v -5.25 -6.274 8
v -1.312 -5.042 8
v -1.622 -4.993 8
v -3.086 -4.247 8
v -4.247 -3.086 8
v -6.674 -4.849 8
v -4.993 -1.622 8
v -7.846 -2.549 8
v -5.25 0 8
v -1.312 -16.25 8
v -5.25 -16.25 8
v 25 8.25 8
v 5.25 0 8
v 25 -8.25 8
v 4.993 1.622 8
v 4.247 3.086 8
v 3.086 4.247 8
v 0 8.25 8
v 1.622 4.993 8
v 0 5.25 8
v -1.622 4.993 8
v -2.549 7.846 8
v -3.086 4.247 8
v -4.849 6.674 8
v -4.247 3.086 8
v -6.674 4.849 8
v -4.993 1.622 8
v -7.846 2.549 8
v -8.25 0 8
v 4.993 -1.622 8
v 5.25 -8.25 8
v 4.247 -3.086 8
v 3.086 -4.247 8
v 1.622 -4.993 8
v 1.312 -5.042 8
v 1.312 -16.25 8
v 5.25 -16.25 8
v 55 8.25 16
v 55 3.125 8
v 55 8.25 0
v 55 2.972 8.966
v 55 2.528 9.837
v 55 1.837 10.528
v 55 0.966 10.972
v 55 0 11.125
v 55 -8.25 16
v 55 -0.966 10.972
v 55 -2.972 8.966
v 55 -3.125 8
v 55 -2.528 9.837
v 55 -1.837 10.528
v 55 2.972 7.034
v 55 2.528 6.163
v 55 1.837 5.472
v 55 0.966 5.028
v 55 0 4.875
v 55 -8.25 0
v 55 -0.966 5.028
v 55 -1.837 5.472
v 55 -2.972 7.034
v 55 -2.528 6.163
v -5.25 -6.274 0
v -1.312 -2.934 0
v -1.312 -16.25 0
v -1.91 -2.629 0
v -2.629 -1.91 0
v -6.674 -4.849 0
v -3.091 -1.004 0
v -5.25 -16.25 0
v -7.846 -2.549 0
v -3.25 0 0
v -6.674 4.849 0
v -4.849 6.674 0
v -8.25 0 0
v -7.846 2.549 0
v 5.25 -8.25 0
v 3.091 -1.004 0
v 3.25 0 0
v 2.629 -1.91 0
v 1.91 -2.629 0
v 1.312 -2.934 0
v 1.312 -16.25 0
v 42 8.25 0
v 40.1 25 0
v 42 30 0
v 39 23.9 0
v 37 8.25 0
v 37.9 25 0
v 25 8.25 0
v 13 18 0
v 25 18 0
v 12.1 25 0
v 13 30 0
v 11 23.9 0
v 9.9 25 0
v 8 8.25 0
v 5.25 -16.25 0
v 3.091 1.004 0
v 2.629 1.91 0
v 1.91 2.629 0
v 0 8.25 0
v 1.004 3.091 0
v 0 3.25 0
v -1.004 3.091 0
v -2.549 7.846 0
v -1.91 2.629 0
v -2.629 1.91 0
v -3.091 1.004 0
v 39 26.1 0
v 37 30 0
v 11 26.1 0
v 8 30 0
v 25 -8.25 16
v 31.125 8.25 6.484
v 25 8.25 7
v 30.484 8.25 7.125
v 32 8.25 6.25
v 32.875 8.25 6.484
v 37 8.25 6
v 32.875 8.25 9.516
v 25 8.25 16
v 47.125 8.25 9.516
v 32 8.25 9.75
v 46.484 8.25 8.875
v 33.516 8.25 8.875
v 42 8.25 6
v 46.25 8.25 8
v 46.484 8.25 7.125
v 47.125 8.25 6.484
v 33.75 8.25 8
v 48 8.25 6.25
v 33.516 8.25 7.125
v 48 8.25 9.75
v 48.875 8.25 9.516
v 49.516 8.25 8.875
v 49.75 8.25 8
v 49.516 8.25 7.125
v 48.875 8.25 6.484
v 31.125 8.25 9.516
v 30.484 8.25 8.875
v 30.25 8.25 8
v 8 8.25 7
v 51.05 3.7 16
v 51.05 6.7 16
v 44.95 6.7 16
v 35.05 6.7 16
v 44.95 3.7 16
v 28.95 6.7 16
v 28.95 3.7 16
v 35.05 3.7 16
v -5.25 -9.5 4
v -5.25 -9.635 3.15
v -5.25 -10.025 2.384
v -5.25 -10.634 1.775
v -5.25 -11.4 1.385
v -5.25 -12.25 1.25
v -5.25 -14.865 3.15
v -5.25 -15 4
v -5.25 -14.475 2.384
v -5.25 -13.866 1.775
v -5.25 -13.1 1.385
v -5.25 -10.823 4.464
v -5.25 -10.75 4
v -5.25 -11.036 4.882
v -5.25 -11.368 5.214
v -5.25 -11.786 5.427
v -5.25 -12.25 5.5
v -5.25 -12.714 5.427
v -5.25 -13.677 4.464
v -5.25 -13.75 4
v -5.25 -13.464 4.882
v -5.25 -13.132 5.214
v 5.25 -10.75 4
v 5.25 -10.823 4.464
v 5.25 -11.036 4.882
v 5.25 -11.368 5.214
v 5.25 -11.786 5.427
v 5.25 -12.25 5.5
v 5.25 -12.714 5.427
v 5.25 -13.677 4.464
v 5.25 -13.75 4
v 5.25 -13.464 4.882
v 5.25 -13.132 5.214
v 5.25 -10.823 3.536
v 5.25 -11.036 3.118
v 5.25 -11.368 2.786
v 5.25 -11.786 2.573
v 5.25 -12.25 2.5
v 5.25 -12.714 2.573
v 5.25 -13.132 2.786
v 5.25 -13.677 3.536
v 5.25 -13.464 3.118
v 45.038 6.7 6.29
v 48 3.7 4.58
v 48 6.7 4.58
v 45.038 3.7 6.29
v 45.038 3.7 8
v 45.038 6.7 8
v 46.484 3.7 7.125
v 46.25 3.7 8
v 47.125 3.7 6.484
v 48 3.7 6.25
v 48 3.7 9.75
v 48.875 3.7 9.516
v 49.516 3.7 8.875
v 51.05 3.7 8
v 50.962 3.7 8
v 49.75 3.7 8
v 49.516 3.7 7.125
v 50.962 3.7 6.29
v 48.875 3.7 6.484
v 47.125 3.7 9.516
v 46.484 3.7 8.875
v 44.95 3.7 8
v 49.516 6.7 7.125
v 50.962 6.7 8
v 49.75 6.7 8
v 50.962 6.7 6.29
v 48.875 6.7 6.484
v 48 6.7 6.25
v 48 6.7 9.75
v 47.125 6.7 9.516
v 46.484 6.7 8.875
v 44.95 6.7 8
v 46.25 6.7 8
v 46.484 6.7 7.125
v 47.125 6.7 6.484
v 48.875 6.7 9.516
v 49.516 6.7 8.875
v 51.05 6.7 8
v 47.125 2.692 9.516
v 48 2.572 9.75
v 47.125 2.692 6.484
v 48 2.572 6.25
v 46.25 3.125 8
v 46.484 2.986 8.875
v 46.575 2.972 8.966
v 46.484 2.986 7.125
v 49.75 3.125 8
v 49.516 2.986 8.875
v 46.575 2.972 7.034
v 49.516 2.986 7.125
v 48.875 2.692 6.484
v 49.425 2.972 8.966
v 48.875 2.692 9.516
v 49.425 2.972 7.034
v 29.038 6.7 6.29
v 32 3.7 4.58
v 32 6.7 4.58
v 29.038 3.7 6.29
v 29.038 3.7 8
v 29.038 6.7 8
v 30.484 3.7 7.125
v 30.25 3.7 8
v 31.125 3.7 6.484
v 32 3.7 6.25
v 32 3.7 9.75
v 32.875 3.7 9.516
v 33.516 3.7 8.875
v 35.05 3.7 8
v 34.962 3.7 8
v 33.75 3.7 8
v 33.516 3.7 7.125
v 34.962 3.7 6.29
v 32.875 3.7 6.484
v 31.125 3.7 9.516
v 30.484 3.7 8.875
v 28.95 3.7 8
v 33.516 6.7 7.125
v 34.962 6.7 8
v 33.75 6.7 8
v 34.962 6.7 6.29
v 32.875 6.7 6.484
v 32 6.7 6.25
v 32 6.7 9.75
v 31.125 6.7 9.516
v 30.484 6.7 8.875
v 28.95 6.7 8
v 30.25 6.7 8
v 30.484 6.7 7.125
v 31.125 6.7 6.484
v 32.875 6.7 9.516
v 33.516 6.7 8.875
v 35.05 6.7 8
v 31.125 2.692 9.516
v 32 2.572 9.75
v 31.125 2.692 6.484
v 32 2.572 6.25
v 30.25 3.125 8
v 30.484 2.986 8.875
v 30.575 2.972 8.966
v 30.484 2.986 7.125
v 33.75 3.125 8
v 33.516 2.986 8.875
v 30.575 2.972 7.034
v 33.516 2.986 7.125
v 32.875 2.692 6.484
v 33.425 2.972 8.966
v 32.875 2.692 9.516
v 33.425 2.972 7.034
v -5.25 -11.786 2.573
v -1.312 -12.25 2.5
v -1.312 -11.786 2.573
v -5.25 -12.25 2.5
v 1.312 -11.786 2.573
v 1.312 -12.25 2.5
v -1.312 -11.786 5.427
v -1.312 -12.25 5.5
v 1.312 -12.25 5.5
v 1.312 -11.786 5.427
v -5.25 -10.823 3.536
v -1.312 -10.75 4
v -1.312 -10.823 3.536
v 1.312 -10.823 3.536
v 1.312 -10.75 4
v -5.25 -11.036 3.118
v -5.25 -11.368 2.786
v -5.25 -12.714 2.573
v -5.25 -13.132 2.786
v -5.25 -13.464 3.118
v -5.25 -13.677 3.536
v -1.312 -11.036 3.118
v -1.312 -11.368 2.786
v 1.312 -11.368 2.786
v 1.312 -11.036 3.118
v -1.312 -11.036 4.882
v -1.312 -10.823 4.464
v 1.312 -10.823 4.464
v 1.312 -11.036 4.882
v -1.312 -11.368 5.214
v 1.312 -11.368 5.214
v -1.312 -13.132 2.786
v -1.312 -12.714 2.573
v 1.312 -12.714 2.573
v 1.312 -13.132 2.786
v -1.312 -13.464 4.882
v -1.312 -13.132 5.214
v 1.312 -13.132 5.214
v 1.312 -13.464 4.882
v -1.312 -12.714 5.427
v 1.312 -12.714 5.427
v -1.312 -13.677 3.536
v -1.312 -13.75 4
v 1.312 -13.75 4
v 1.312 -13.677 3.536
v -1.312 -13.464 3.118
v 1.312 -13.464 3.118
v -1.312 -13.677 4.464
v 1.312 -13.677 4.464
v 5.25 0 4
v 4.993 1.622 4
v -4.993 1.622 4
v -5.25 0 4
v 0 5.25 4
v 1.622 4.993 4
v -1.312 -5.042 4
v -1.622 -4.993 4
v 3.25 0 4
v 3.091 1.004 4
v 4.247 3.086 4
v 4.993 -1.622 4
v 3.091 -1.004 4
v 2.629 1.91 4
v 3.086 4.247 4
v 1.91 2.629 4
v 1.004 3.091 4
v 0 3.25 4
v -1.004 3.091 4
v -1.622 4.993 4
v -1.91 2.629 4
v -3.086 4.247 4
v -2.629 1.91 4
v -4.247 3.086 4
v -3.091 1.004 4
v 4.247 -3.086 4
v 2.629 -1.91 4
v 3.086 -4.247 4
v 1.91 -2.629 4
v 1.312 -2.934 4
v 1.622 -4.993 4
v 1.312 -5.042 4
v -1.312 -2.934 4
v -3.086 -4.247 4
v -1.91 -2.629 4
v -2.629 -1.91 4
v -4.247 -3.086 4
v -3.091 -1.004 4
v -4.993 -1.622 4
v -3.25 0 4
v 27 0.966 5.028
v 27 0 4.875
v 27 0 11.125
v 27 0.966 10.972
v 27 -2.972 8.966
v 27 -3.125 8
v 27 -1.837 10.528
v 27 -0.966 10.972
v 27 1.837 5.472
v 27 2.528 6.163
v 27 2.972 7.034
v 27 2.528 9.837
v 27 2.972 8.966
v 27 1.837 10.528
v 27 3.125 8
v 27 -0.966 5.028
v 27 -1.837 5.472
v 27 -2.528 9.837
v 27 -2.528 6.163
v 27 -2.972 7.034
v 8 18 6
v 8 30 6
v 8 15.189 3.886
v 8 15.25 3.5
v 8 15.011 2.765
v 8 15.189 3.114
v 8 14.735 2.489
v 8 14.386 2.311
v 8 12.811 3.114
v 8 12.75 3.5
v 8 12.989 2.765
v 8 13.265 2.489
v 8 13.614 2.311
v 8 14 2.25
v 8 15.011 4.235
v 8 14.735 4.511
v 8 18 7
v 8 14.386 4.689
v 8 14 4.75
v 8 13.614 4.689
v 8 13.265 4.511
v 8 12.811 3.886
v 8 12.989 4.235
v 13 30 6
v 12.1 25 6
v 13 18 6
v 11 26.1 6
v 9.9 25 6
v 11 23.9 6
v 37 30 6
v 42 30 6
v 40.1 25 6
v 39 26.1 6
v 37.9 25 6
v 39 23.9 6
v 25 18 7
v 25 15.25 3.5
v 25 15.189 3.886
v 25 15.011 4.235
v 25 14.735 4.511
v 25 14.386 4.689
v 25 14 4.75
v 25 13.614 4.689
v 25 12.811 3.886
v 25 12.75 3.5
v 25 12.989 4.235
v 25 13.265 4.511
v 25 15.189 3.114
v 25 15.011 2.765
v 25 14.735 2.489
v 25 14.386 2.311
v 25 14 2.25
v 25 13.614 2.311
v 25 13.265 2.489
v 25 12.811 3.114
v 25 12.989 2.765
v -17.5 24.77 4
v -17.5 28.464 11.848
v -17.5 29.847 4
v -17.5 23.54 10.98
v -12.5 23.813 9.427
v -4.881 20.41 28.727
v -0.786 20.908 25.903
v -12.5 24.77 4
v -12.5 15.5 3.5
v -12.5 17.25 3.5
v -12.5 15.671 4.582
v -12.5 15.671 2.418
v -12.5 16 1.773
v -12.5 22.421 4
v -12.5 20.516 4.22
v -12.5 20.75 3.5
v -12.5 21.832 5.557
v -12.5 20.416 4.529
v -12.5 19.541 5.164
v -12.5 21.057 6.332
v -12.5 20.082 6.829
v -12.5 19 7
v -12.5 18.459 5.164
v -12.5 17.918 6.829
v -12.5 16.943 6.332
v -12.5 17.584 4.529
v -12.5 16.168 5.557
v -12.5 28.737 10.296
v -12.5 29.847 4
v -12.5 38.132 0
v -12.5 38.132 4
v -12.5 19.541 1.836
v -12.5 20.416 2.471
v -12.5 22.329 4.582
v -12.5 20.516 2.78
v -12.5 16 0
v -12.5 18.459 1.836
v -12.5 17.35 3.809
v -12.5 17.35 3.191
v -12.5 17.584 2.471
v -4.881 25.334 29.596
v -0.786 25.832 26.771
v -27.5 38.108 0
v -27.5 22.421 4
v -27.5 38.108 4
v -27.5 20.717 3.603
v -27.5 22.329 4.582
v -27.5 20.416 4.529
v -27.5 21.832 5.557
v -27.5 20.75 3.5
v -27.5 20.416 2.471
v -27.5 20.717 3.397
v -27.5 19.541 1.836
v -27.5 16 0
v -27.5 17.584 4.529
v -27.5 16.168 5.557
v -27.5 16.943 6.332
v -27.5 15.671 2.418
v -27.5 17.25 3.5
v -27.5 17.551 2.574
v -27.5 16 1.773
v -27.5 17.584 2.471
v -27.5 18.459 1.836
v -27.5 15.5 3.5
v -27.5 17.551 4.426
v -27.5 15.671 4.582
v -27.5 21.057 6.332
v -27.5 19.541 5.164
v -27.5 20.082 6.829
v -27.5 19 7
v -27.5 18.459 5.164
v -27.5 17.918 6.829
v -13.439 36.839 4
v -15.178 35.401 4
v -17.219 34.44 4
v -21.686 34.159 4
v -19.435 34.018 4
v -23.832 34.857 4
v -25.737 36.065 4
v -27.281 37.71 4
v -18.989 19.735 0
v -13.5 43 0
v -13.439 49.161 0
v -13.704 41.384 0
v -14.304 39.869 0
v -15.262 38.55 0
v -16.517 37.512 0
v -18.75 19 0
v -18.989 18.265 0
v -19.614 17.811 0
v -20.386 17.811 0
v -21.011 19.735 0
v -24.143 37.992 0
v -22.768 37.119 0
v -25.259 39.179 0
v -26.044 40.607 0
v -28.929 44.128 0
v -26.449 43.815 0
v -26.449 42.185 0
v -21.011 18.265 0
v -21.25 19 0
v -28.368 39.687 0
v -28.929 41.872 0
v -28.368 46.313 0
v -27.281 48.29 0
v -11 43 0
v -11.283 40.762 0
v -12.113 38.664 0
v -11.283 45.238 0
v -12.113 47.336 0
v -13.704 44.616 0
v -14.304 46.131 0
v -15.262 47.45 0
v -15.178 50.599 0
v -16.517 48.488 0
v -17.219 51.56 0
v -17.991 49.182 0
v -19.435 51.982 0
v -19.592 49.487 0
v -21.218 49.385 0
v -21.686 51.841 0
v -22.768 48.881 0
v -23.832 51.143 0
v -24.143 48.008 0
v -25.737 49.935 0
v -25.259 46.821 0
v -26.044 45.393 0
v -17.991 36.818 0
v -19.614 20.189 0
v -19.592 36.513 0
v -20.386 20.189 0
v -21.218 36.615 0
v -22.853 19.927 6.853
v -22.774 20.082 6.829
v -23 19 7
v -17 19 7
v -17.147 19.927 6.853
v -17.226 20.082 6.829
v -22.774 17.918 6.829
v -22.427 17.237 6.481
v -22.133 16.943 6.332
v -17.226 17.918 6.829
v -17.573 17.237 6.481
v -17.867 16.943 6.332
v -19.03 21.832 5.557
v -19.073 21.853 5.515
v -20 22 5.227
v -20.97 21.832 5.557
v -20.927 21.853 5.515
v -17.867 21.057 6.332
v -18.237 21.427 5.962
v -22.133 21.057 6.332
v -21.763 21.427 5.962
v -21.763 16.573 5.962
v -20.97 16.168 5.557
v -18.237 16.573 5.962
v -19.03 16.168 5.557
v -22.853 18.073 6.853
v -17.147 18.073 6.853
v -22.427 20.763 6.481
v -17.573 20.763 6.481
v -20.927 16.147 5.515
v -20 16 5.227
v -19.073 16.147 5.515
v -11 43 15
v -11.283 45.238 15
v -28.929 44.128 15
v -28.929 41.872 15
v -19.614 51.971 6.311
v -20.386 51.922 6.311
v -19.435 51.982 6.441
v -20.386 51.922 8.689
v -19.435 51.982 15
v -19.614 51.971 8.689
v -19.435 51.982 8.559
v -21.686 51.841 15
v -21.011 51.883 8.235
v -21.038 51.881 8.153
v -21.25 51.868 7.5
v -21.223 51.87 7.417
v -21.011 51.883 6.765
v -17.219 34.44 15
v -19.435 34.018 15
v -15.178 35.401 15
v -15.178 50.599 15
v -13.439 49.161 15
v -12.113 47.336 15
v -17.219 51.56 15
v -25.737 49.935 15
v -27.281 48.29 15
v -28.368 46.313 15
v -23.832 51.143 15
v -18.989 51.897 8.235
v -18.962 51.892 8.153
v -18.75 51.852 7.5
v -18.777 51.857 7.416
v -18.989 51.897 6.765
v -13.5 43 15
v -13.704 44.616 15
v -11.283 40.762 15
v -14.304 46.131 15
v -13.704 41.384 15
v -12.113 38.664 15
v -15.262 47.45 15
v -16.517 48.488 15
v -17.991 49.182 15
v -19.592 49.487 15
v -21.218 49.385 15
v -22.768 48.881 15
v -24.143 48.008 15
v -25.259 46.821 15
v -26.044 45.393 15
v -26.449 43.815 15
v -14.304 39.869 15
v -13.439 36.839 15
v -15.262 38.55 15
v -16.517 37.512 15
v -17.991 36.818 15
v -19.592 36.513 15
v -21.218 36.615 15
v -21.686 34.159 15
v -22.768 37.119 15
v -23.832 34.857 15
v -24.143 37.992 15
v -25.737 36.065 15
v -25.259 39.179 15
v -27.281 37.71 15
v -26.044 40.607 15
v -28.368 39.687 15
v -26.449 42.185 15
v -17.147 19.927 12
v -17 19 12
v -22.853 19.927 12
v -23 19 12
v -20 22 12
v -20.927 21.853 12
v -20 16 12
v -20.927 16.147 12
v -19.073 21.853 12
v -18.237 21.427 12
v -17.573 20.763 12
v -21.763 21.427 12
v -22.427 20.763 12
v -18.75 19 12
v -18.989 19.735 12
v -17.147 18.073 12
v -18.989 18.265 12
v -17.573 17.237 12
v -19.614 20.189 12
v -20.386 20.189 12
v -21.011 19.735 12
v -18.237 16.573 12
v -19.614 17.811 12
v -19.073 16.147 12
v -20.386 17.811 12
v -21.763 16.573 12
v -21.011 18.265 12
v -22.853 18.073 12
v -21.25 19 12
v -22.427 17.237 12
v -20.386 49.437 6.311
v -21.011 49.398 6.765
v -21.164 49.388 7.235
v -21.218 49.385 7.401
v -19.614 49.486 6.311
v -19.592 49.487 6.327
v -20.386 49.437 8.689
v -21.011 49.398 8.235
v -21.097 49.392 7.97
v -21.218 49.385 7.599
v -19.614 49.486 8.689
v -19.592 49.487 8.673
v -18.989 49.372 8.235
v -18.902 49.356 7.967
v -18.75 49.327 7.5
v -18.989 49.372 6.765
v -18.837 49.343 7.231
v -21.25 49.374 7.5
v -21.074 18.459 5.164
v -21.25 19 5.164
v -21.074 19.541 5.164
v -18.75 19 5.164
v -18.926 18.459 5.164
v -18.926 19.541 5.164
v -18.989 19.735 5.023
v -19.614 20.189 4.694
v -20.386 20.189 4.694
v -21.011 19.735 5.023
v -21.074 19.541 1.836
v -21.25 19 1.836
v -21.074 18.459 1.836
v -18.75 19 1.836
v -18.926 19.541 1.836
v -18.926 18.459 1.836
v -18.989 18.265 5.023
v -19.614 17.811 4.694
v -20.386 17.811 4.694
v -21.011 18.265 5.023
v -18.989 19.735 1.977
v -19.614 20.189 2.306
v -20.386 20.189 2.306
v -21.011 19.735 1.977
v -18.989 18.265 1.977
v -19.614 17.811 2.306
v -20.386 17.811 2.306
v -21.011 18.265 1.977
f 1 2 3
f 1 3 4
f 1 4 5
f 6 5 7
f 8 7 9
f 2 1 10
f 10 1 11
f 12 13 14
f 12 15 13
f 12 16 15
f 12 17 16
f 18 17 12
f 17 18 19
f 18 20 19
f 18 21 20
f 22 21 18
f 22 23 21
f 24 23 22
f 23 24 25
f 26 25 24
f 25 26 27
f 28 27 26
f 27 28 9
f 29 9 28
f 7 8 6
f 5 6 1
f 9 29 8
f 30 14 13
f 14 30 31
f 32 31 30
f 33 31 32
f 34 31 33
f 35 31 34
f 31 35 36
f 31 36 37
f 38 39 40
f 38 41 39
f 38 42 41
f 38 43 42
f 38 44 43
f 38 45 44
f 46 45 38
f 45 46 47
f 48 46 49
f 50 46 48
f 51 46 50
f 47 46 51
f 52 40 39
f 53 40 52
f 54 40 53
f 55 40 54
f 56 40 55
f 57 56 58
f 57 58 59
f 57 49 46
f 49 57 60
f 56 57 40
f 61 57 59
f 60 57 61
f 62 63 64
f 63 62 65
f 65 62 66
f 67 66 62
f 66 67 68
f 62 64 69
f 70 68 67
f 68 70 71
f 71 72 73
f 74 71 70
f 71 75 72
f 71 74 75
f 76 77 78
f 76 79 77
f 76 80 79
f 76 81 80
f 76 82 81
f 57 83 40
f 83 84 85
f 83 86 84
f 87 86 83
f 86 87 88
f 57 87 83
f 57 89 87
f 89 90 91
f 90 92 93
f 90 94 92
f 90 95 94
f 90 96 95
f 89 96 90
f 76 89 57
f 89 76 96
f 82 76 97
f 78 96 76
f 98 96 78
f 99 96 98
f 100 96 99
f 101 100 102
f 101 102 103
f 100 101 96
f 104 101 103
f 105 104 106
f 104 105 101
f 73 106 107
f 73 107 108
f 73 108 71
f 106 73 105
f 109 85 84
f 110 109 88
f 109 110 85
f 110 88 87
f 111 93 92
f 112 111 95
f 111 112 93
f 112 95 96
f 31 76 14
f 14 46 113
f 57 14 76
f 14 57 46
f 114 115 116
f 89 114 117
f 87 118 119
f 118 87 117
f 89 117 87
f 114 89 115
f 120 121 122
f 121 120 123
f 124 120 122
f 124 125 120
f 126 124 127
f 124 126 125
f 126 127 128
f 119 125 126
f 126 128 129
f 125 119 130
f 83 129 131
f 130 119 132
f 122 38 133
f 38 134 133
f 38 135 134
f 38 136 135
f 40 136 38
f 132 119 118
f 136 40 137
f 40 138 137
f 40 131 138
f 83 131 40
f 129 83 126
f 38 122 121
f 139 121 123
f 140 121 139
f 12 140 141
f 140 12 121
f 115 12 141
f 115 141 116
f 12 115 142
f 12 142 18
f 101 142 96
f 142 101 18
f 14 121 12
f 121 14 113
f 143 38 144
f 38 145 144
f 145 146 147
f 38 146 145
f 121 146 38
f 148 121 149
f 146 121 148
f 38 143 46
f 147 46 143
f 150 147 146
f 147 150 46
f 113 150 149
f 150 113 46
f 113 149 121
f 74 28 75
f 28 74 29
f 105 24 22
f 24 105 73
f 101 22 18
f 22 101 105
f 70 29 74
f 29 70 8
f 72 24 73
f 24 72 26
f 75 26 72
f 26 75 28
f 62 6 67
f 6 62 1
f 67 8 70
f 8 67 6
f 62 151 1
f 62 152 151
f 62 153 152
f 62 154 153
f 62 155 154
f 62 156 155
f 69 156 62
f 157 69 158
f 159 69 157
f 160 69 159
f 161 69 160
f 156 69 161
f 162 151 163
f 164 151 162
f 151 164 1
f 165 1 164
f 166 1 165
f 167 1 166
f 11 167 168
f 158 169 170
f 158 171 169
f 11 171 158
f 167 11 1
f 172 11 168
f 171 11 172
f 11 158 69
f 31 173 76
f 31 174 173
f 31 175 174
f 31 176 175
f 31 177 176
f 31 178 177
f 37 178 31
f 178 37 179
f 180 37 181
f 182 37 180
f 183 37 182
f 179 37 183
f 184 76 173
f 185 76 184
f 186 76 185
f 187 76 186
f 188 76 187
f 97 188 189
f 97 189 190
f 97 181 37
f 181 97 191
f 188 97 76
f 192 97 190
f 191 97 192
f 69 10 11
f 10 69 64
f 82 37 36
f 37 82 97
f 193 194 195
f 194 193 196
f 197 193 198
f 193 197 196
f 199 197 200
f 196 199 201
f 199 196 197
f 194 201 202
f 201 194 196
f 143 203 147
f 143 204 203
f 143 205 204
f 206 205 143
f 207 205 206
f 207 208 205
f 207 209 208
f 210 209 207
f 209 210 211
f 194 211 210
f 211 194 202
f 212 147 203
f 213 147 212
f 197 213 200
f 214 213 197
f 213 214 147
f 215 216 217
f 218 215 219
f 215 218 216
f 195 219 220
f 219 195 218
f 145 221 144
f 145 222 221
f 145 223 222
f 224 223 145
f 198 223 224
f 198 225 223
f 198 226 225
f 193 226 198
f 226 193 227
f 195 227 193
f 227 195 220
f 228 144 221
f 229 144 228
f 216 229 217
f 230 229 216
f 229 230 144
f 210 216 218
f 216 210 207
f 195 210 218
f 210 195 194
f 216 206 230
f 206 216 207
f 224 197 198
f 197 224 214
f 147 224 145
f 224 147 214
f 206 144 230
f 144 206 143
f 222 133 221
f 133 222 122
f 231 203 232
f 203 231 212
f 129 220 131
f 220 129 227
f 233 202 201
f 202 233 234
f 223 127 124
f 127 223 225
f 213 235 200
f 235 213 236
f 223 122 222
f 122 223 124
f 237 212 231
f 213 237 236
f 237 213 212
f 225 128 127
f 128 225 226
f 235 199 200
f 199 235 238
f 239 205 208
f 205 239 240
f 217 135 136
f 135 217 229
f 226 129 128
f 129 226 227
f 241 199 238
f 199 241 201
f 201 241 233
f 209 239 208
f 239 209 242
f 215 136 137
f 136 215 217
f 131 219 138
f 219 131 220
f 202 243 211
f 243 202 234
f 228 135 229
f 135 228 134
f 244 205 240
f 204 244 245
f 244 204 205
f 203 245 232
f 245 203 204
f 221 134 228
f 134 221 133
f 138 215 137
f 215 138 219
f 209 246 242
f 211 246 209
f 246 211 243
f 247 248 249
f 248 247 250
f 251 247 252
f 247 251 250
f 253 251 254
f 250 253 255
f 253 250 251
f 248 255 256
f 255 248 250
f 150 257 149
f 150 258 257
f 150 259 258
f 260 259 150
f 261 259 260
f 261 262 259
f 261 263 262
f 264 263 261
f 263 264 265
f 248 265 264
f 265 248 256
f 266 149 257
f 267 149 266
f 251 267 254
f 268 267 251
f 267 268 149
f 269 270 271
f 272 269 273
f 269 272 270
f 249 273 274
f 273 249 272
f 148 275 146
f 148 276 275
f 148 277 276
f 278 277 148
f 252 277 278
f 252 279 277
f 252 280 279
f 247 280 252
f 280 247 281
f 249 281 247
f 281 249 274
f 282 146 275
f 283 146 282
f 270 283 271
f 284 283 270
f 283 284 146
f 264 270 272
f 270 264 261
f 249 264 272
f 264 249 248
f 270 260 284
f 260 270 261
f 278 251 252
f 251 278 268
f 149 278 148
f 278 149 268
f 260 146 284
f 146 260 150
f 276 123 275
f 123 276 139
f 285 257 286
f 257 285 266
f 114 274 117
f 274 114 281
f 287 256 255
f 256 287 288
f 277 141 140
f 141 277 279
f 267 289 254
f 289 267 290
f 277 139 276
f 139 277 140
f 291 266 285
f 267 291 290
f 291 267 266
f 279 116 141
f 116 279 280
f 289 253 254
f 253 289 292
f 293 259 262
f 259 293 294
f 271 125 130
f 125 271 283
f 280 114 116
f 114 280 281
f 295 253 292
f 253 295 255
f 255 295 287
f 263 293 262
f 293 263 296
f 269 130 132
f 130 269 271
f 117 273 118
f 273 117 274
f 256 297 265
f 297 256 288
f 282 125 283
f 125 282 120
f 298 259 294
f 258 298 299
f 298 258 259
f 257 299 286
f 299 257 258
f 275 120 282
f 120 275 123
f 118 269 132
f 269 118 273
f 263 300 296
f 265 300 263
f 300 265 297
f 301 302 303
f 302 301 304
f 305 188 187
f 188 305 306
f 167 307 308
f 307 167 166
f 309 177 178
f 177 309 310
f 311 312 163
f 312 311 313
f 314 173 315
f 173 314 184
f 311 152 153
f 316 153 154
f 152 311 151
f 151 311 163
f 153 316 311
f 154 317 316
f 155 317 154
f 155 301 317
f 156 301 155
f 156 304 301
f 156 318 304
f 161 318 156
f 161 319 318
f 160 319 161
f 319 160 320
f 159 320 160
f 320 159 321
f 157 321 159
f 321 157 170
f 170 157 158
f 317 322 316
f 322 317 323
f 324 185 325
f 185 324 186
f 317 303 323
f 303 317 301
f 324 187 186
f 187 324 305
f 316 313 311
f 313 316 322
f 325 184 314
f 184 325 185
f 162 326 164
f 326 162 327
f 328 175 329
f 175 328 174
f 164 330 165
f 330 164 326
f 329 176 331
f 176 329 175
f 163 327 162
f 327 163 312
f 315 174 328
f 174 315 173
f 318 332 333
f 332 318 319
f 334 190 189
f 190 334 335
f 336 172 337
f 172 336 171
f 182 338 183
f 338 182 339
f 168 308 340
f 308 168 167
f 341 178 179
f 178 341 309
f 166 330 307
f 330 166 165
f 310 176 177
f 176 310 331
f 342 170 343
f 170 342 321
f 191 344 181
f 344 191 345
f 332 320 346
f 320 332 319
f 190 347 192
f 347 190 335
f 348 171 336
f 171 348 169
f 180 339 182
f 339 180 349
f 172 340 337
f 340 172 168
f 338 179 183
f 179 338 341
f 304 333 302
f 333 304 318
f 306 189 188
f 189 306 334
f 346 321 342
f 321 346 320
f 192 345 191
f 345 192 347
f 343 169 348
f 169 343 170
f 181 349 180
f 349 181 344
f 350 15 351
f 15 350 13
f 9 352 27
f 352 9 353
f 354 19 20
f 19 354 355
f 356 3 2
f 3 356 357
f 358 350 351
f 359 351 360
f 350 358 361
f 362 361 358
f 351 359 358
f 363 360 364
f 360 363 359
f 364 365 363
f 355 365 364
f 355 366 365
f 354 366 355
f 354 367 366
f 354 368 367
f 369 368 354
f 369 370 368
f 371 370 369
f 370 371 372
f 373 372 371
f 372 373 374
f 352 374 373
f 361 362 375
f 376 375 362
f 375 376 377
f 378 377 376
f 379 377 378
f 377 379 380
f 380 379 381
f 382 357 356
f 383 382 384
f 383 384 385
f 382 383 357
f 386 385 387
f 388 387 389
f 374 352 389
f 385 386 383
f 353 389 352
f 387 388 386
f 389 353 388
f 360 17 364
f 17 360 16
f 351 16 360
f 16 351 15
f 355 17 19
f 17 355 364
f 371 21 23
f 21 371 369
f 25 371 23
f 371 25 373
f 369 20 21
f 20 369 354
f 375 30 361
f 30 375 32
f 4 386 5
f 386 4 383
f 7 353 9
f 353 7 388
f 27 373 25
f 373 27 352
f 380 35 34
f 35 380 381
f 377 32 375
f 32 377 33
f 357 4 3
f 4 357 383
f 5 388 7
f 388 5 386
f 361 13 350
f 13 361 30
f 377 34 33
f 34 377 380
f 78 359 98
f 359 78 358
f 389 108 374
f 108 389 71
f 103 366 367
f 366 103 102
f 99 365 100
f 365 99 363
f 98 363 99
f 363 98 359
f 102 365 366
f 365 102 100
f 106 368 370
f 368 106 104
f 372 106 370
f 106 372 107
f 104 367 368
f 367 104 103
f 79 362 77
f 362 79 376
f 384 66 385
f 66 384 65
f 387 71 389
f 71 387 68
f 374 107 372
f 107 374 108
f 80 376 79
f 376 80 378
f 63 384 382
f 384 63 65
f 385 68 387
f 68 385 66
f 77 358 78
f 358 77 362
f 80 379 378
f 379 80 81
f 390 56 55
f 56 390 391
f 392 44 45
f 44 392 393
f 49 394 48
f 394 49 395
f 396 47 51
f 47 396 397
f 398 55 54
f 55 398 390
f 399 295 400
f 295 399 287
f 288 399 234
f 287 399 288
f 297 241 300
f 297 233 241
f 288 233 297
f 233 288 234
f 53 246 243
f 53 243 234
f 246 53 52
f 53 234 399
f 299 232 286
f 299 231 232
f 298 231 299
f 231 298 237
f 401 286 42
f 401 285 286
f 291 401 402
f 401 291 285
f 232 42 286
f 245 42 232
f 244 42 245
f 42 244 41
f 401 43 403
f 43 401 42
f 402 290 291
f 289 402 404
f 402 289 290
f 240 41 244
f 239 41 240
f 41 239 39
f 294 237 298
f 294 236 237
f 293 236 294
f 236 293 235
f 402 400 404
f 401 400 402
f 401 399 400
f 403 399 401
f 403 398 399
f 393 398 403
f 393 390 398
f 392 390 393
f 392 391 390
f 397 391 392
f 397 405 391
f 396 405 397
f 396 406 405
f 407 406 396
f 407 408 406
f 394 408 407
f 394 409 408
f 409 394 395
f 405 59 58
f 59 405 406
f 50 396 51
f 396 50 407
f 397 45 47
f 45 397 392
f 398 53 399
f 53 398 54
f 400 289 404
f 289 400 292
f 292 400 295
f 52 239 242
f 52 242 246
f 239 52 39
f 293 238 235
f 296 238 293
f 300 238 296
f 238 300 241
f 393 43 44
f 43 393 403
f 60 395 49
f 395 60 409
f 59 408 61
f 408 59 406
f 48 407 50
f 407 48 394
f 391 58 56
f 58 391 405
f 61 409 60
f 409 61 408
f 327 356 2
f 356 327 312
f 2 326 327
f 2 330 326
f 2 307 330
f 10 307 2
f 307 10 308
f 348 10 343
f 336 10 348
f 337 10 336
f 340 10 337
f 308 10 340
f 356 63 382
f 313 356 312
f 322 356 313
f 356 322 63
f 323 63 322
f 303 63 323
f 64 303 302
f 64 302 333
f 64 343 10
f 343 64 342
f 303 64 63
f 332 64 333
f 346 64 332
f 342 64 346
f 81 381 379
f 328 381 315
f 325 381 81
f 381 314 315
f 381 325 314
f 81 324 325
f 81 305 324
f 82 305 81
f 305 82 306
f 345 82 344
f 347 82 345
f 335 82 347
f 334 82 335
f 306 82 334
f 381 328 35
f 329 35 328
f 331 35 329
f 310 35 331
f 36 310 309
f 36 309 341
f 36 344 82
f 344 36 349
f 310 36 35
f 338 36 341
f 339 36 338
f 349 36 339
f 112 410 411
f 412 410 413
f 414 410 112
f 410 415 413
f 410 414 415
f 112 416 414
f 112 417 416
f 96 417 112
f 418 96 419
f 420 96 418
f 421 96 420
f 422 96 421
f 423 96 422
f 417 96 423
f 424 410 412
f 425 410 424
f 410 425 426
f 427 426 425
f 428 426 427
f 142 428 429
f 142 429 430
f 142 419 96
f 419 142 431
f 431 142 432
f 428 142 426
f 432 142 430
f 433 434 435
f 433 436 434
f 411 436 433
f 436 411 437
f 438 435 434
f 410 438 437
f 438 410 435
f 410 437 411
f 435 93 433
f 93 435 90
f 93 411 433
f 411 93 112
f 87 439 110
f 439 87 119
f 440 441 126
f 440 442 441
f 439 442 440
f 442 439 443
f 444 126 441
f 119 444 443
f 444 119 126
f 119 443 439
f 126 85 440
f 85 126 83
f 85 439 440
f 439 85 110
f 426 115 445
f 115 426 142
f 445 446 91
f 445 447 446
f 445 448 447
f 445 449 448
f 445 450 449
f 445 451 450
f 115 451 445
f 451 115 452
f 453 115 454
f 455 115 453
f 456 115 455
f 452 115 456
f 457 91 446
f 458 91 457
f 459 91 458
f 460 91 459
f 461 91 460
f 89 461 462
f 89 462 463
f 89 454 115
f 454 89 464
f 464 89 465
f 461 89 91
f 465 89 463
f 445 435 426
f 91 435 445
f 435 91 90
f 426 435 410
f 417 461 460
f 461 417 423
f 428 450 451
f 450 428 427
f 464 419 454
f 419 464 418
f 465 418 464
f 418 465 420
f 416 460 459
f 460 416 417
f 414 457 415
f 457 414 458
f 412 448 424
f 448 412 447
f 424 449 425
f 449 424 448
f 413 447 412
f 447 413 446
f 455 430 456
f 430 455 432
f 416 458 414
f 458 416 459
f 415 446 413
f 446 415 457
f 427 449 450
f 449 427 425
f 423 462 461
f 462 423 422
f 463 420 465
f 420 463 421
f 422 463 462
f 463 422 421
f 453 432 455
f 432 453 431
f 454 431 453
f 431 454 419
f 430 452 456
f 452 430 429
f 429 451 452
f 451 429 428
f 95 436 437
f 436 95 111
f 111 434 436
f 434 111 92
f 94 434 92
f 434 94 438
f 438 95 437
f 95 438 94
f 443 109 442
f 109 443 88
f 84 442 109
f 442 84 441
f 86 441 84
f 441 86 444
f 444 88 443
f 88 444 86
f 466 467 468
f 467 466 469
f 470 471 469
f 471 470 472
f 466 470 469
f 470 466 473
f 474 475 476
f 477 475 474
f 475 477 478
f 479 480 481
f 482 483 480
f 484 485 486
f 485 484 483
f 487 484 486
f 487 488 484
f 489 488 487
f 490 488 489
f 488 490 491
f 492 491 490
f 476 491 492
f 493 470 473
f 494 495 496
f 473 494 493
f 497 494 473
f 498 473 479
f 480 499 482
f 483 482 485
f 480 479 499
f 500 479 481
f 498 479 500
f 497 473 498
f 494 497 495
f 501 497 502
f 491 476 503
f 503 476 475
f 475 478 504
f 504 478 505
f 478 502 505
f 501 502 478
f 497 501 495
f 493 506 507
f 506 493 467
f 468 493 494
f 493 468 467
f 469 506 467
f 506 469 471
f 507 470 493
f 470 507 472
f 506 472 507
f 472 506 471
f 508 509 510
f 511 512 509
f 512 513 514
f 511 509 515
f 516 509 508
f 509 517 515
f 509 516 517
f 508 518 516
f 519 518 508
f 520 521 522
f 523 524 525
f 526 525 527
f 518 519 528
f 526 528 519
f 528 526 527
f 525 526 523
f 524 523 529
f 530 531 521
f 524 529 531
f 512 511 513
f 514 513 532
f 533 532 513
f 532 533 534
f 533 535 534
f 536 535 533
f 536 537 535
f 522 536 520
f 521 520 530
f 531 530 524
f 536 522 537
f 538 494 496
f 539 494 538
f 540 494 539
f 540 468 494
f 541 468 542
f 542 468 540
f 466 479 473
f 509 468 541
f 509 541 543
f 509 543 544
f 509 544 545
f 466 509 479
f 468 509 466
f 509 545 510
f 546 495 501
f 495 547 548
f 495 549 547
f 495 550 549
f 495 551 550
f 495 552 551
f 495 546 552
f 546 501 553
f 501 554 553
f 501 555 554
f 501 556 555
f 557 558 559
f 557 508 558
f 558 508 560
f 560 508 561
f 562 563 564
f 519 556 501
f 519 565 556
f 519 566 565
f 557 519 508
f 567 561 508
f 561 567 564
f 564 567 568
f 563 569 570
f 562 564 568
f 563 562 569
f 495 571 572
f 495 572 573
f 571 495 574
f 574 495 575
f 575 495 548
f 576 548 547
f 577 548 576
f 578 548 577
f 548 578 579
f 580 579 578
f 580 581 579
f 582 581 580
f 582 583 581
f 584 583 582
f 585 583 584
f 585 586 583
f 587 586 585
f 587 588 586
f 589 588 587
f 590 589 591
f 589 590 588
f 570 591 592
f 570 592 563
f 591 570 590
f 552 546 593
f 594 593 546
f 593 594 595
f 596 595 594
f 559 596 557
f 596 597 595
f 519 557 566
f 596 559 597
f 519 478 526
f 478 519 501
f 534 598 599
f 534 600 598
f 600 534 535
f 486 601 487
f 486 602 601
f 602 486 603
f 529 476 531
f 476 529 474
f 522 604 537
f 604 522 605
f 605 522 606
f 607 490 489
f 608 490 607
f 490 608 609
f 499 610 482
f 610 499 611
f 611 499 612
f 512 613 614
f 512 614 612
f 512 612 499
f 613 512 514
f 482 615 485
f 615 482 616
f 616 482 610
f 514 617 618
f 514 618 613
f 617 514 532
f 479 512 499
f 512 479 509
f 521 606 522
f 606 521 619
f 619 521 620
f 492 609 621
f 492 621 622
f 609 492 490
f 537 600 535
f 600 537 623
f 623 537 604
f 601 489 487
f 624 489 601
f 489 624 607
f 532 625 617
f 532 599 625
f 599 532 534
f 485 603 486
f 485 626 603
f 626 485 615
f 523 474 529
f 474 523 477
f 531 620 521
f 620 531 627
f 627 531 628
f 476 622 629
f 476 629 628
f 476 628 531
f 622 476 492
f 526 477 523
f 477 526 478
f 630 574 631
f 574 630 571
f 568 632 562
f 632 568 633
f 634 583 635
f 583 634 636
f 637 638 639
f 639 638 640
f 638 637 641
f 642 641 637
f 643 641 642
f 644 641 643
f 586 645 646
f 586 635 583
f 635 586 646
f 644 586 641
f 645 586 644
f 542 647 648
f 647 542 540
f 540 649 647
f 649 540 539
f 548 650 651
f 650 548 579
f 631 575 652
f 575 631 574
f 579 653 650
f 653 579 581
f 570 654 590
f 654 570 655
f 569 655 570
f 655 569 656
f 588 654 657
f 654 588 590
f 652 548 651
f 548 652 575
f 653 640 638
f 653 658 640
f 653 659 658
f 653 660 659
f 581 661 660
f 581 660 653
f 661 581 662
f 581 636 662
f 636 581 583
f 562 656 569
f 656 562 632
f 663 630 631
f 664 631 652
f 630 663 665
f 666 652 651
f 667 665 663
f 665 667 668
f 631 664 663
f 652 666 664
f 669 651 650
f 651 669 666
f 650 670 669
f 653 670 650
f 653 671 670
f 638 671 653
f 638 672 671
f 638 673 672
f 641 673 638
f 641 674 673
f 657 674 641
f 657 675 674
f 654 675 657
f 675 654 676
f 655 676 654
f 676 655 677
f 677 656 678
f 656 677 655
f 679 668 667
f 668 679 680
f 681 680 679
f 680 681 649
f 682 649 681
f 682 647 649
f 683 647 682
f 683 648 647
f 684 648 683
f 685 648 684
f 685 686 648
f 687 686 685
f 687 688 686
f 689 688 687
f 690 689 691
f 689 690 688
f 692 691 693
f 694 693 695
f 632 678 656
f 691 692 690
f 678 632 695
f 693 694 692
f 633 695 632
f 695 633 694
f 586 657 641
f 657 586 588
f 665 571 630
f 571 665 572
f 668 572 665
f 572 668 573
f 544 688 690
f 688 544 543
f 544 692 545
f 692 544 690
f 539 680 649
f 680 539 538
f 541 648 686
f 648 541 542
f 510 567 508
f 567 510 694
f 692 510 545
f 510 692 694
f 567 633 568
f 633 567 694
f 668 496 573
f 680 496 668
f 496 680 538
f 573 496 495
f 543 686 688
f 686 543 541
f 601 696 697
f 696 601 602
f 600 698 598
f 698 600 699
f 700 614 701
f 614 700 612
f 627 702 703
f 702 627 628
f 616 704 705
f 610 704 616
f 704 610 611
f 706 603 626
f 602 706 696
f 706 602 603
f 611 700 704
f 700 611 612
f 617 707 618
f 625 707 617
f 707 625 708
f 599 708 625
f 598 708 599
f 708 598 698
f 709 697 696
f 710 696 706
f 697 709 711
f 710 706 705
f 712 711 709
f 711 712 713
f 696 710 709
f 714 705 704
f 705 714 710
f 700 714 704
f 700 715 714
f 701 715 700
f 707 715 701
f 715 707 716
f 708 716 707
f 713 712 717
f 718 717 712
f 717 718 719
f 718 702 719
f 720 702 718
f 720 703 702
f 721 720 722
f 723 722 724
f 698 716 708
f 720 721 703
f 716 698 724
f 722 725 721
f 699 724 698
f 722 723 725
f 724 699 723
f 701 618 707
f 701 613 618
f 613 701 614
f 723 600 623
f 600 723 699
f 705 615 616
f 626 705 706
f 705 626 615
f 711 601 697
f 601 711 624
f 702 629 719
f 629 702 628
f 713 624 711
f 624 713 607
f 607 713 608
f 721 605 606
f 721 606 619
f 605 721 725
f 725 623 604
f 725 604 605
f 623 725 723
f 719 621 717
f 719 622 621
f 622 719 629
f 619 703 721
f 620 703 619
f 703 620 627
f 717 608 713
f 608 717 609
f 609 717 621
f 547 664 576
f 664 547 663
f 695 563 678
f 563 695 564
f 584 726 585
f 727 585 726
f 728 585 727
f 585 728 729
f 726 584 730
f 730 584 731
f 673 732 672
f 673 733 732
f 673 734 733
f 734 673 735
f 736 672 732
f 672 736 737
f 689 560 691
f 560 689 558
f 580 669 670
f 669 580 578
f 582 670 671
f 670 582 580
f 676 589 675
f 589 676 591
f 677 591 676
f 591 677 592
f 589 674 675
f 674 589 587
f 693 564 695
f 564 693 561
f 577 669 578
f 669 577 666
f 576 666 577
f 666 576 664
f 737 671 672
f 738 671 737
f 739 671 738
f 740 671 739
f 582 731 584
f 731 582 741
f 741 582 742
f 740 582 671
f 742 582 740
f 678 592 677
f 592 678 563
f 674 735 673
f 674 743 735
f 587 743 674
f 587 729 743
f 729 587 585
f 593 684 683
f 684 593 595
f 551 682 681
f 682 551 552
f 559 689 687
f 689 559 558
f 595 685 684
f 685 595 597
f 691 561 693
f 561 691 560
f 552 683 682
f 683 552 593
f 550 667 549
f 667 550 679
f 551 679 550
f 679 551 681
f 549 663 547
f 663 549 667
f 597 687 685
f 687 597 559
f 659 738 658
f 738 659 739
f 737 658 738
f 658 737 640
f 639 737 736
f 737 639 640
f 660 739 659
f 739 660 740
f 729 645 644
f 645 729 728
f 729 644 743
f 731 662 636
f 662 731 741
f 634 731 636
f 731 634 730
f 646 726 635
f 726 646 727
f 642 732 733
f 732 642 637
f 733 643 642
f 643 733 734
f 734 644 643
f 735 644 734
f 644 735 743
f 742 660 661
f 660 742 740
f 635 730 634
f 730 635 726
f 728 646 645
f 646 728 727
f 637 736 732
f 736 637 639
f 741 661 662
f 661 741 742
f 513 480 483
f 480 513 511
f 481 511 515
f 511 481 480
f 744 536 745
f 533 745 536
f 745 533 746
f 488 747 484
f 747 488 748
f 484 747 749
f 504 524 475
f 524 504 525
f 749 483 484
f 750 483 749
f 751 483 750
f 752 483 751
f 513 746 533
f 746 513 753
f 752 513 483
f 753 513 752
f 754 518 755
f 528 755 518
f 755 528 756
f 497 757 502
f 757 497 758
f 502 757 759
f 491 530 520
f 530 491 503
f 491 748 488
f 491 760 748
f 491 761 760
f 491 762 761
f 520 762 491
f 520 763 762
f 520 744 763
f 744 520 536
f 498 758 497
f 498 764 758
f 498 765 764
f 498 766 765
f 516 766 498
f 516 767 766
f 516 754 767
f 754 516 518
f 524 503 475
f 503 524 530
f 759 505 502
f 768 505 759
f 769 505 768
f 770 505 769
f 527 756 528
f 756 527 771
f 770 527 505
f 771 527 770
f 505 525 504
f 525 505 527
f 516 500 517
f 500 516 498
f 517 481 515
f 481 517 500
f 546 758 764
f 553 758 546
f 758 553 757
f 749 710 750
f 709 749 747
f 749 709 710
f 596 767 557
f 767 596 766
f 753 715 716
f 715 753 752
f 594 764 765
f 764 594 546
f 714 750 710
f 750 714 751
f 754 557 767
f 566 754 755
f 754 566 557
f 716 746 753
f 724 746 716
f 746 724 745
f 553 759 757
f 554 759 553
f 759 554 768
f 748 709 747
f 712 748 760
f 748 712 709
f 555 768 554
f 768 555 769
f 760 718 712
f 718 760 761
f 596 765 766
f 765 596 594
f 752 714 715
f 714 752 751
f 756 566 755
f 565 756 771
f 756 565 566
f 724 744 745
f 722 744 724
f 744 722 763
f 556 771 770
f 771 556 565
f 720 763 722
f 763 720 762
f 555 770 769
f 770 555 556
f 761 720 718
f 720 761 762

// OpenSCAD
detail = 20;	//20=low, 85=high

shaftDiam = 6+0.25;     //add a bit (6mm actual)

shaftClampedLength = 35;        //after much fiddling this isn't the clamped length any more


//elbowBearing4 inputs:
shaftClampWidth = 20-3;      //20mm M3 bolt and 3 for bolting
shaftZ = 2;                  //z position for the bottom of the shaft
//shaftDiam
//shaftClampedLength
bearingDiam = 10+0.5;       //add a bit (10mm actual)
bearingThick = 4;
washerThick = 0.4;
bearingPad = 6;
shaftEndPad = 2;

elbowHeight = 12;

tiny=0.001;

servoRot = 0;


//elbow();


//WRISTWRISTWRIST
//ASSEMBLY
////servo wrist assembly & pen holder for assembly check
//wrist2(0);                                          //servo wrist
//translate([0,-30,0])wrist1(180);                    //second wrist
//penHolder();                                         //assembly check

//PRINT
//servo wrist assembly & pen holder for print
wrist2(0);                                          //servo wrist
//translate([0,-30,0])wrist1(180);                    //second wrist
translate([-20,5,0])penHolder();


module wrist1(clampAngle) {
    //this is called by the servo wrist unit, forms the basis of the wrist joint
    //clampAngle = 180 for pen wrist, 0 for non=pen
    padWide = 6;
    padThick = 4;
    clampThick = 6;
    difference() {
        //bearing base
        union() {
            //base strip
            translate([0,-(bearingDiam+padWide)/2,0]) {
                cube([55,bearingDiam+padWide,bearingThick+padThick]);
                //shaft clamp housing
                translate([55-30,0,0])cube([30,bearingDiam+padWide,(clampThick+bearingThick/2)*2]);
            }
            //bearing housing
            cylinder(h=bearingThick+padThick,d=bearingDiam+padWide,$fn=detail);
            //bearing clamp
            rotate([0,0,clampAngle])translate([-bearingDiam/2,0,0])cube([bearingDiam,bearingDiam/2+padWide/2+6+2,bearingThick+padThick]);
        }
        //bearing
        translate([0,0,padThick])cylinder(h=bearingThick,d=bearingDiam,$fn=detail);
        //bolt hole
        cylinder(h=padThick,d=6.5,$fn=detail);
        //shaft
        translate([55-28,0,(clampThick+bearingThick/2)])rotate([0,90,0])cylinder(h=28,d=shaftDiam,$fn=detail);
        //shaft clamp fixings
        translate([55-7,5.2,(clampThick+bearingThick/2)])rotate([0,0,90])nutSlot(15,15,0.5);
        translate([55-30+7,5.2,(clampThick+bearingThick/2)])rotate([0,0,90])nutSlot(15,15,0.5);
        //bearing clamp bolt
        translate([-bearingDiam/2,-(bearingDiam/2+padWide/2+3+1),(padThick+bearingThick)/2])rotate([0,90,0])boltHole(3,5.5,12,3);
        //bearing clamp nut
        
        //bearing clamp slot
        rotate([0,0,clampAngle])translate([-bearingDiam/4+bearingDiam/8,0,0])cube([bearingDiam/4,bearingDiam/2+padWide/2+6+2,bearingThick+padThick]);
    }
    
}

module wrist2() {
    //this is the one with the servo, adds extra bits to the base wrist
    padWide = 6;
    difference() {
        union() {
            //base wrist joint
            wrist1(180);
            //servo
            %translate([25,25,2])rotate([0,0,180])9g_servo(servoRot);
            //servo mount - near bearing
            translate([8,8,0])cube([5,22,6]);
            //servo mount - the other one
            translate([37,8,0])cube([5,22,6]);
            //pen mount
            translate([8,8,0])cube([17,10,7]);
        }
        //penHolder mount    
        translate([-27+17,14,(3+2+2)/2])rotate([0,90,0])cylinder(h=35,d=2.5,$fn=detail); //35mm m3 bolt
        //servo holes
        translate([11,25,8])rotate([0,180,0])cylinder(h=10,d=2.2,$fn=4);
        translate([39,25,8])rotate([0,180,0])cylinder(h=10,d=2.2,$fn=4);
        
    }
}
module penHolder() {
    difference() {
        union() {
            translate([0,18,0]) {
                //base
                translate([-15/2,-7,0]) {
                    //base
                    cube([15,25,4]);
                    //pivot bearing
                    translate([0,3,(3+2+2)/2])rotate([0,90,0])cylinder(h=15,d=7,$fn=20);   
                }
                //main for pen holder
                translate([0,20,0])cylinder(h=15,d=18,$fn=25);
                //'jiggle' adjustment boss (for grubscrew etc.)
                translate([0,-4,0])cylinder(h=12,d=6,$fn=20);
            }
            translate([2.5,25.2,2])rotate([100,0,0]){
                //base of lift arm
                cube([5,10,5]);
                //top of lift arm
                translate([0,10,0])rotate([0,0,-35])cube([5,22,5]);
            }
        }
        //pen hole
        translate([0,18+20,0])cylinder(h=15,d=13,$fn=25);
        //pen holder bolts
        translate([0,38,0]) {
            rotate([90,0,0])translate([0,7.5,-10])cylinder(h=10,d=2.5,$fn=10);
        }
        //pivot bolt
        translate([-10,14,(3+2+2)/2])rotate([90,0,90])cylinder(h=25,d=3.5,$fn=10);
        //pivot bolt 'jiggle' adjustment (optional?)
        translate([0,14,0])cylinder(h=15,d=2.5,$fn=10);
    }
    
}


module elbow() {
    difference() {
        union() {
            //bearing barrel
            cylinder(h=elbowHeight,d=bearingDiam+bearingPad,$fn=detail);
            //main elbow body
            translate([0,-(bearingDiam+bearingPad)/2,0])cube([bearingDiam/2+shaftEndPad+shaftClampedLength,bearingDiam+bearingPad,elbowHeight]);
            //bearing clamp body
            translate([-bearingDiam*1.25,-bearingDiam/2,0])cube([bearingDiam,bearingDiam,elbowHeight]);
        }
        //remove bearing stack
        translate([0,0,elbowHeight-(2*bearingThick+washerThick)])cylinder(h=2*bearingThick+washerThick,d=bearingDiam,$fn=detail);
        //remove shaft
        translate([bearingDiam/2+shaftEndPad,0,elbowHeight/2])rotate([0,90,0])cylinder(h=shaftClampedLength,d=shaftDiam,$fn=detail);
        //remove shaft clamp slots
        translate([(bearingDiam/2+shaftEndPad+shaftClampedLength)-7,shaftDiam/2+2,elbowHeight/2])rotate([0,0,90])nutSlot(15,15,0.5);
        translate([(bearingDiam/2+shaftEndPad)+7,shaftDiam/2+2,elbowHeight/2])rotate([0,0,90])nutSlot(15,15,0.5);
        //remove bearing clamp slot
        translate([-bearingDiam*1.25,-1.5,0])cube([bearingDiam,3,elbowHeight]);
        //remove clamp bolt holes
        #translate([-bearingDiam*1.25+3.5,bearingDiam/2,elbowHeight/2+1])rotate([90,0,0])boltHole(3,5.5,16,3.1);
        //remove axle bolt hole
        cylinder(h=elbowHeight,d=6.5,$fn=detail);
    }
}

module nutSlot(slotLength,holeLength,holeFrac) {
    //slot and hole for grubscrew and nut for retention of shaft/bearing
    //slot
    m3NutDiam = 6.24+0.6;    //equivalent diameter (6 faces)
    m3NutFlats = 5.5+0.6;   //distance across flats
    m3NutThick = 2.4+0.6;
    
    rotate([0,-90,0])translate([0,0,-m3NutThick/2]) {
        cylinder(h=m3NutThick,d=m3NutDiam,$fn=6);
        translate([0,-m3NutFlats/2,0])cube([slotLength,m3NutFlats,m3NutThick]);
        //hole
        translate([0,0,-holeFrac*holeLength])cylinder(h=holeLength,d=3.5,$fn=12);
    }
}

module boltHole(headLength, headDiam, shaftLength, shaftDiam) {
 	//(M3)
	//head length std = 3mm
	//head diameter std = 5.5mm
	//shaft diameter std = 3mm
	//length defined
    //e.g.: boltHole(3,5.5,8,3)
	union() {
		cylinder(h=shaftLength,d=shaftDiam,$fn=detail);
		translate([0,0,-headLength]) cylinder(h=headLength,d=headDiam,$fn=detail); //h=2.9
	}
}

module boltHoleNut(headLength, headDiam, shaftLength, shaftDiam) {
 	//(M3)
	//head length std = 3mm
	//head diameter std = 5.5mm
	//shaft diameter std = 3mm
	//length defined
	union() {
		cylinder(h=shaftLength,d=shaftDiam,$fn=detail);
		translate([0,0,-headLength]) cylinder(h=headLength,d=headDiam,$fn=detail); //h=2.9
		translate([0,0,shaftLength-2.4])cylinder(h=2.4,d=6.8,$fn=6);
	}
}


// from http://www.thingiverse.com/TheCase/designs/
// 9G Servo in OpenSCAD by TheCase is licensed under the Creative Commons - Attribution license.
module 9g_servo(hornRot){
	difference(){			
		union(){
			color("steelblue") cube([23,12.5,22], center=true);
			color("steelblue") translate([0,0,5]) cube([32,12,2], center=true);
			color("steelblue") translate([5.5,0,2.75]) cylinder(r=6, h=25.75, $fn=20, center=true);
			color("steelblue") translate([-.5,0,2.75]) cylinder(r=1, h=25.75, $fn=20, center=true);
			color("steelblue") translate([-1,0,2.75]) cube([5,5.6,24.5], center=true);		
			color("white") translate([5.5,0,3.65]) {
                cylinder(r=2.35, h=29.25, $fn=20, center=true);
                rotate([0,0,hornRot]){
                    hull(){
                        translate([0,0,13.7925]) {
                            cylinder(d=7.3,h=1.66,$fn=15,center=true);
                            translate([(16-4.8/2),0,0])cylinder(d=4.8,h=1.66,$fn=15,center=true);
                        }
                    }
                }
            }
			
		}
		translate([10,0,-11]) rotate([0,-30,0]) cube([8,13,4], center=true);
		for ( hole = [14,-14] ){
			translate([hole,0,5]) cylinder(r=2.2, h=4, $fn=20, center=true);
		}	
	}
}
